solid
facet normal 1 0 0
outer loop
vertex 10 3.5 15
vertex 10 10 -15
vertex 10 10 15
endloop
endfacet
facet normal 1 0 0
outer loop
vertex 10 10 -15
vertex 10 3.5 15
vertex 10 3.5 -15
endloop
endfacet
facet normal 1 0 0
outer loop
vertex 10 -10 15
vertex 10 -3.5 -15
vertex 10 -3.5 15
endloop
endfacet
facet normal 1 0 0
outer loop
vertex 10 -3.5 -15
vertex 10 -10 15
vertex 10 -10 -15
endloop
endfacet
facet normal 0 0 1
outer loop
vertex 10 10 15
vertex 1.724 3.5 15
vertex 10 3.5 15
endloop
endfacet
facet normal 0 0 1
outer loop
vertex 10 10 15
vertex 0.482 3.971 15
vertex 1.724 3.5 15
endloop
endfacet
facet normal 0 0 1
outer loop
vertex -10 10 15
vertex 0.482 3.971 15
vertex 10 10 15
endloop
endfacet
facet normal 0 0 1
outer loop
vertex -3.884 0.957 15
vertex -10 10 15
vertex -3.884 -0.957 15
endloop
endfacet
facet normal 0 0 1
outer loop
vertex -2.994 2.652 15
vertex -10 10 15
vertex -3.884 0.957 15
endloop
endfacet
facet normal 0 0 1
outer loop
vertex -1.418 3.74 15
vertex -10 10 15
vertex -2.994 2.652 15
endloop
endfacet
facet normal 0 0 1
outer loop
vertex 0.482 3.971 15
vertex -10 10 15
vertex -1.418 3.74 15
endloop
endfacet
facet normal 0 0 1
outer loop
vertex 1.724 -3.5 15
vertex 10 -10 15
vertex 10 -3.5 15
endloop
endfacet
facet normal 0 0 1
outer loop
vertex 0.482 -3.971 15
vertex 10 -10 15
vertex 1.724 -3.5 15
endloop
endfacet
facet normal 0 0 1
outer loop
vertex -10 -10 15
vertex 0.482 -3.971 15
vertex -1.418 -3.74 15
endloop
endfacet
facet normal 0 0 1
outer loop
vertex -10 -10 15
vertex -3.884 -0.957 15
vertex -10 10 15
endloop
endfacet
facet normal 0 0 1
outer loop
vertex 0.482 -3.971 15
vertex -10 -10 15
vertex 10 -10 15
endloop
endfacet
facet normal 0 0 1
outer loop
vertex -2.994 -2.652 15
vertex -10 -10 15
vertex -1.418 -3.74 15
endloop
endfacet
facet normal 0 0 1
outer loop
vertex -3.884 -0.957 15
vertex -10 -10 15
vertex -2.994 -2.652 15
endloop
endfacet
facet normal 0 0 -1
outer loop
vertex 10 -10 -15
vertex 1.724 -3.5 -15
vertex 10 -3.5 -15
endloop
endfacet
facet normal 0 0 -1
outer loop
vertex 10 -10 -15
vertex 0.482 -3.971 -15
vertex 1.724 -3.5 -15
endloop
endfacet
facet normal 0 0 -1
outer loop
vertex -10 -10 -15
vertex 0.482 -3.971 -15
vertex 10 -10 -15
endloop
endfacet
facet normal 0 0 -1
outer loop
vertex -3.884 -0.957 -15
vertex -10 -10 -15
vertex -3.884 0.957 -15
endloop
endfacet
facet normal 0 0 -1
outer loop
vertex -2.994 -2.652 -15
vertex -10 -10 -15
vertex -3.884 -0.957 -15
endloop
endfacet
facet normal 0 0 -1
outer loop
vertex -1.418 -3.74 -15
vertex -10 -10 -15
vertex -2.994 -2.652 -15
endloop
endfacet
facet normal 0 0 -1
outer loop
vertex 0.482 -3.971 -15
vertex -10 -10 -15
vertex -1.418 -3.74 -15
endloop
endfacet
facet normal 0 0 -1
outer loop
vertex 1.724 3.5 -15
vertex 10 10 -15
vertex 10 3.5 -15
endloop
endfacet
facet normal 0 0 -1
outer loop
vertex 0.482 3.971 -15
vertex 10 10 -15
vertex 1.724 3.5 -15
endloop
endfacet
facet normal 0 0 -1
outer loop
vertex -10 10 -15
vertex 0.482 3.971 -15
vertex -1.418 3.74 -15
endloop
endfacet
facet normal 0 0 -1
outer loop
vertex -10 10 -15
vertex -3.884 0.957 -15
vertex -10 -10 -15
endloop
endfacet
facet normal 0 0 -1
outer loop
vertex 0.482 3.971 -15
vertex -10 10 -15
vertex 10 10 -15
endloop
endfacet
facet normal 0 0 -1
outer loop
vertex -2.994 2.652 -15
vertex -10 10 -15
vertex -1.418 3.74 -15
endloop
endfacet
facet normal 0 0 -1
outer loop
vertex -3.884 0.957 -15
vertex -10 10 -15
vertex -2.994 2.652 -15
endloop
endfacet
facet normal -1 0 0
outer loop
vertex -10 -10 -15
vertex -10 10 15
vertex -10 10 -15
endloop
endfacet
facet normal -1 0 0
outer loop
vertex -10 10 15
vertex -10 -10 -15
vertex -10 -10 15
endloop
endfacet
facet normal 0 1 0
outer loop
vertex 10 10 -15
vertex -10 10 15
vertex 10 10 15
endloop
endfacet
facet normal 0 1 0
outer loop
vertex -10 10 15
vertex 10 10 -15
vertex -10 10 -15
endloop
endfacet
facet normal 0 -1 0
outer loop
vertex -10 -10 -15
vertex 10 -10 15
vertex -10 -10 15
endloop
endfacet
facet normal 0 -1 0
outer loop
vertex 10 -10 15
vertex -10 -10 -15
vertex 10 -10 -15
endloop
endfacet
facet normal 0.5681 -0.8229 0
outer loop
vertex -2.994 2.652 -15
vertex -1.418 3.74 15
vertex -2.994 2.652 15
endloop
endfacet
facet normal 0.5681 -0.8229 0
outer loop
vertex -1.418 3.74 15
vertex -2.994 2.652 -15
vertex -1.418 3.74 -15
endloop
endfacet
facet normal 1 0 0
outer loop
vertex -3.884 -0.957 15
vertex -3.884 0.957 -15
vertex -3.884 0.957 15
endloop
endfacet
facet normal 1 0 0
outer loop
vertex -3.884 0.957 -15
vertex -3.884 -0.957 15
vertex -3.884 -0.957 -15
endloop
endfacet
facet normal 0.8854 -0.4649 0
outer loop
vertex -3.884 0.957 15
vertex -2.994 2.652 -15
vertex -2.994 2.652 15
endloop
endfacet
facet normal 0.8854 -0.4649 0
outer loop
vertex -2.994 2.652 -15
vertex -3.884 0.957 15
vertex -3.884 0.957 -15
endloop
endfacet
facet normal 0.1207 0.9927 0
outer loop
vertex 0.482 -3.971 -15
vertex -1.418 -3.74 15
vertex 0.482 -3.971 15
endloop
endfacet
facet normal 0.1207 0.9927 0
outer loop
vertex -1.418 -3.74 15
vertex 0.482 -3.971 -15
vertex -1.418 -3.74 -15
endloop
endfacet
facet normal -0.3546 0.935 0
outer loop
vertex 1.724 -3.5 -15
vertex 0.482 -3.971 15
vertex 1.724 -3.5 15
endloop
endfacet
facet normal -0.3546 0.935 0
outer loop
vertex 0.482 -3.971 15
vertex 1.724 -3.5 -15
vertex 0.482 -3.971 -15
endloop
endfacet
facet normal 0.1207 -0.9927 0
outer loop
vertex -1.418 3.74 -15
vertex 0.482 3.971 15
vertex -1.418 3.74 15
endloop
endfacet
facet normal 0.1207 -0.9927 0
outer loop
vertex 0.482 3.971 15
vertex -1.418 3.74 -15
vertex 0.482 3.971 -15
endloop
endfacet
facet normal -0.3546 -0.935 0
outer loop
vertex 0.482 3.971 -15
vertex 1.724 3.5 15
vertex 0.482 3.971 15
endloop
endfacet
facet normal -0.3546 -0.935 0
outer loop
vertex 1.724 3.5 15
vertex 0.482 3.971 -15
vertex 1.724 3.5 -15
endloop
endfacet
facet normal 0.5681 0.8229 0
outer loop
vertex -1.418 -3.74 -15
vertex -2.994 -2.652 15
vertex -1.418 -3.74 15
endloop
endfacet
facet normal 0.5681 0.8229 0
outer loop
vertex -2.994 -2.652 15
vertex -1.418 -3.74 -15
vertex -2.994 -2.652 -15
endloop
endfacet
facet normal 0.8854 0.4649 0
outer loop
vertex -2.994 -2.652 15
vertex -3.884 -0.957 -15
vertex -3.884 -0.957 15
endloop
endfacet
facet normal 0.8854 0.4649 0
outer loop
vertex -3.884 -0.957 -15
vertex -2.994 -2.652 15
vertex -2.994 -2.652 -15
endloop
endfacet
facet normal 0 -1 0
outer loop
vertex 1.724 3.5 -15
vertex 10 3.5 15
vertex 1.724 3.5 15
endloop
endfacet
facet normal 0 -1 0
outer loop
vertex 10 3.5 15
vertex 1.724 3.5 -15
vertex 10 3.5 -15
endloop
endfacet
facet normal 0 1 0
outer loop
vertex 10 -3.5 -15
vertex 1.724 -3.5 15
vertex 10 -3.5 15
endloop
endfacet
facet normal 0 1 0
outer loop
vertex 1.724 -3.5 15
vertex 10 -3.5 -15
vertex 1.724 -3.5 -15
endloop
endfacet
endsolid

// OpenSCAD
//Author:Dave Winstone
//Description: When using furniture levelling feet on square metal legs, you can get the screw showing, so this clips over the screw to hide it.abs

ScrewDiameter=8;
LegWidth=20;
LegDepth=20;
LegHeight=30;

difference() {
cube([LegWidth,LegDepth,LegHeight],center=true);
cylinder(h=LegHeight+5,r1=ScrewDiameter/2,r2=ScrewDiameter/2,center=true);
translate([0,-(ScrewDiameter-1)/2,-LegHeight]) cube([LegHeight+5,ScrewDiameter-1,LegHeight*2]);  
}
